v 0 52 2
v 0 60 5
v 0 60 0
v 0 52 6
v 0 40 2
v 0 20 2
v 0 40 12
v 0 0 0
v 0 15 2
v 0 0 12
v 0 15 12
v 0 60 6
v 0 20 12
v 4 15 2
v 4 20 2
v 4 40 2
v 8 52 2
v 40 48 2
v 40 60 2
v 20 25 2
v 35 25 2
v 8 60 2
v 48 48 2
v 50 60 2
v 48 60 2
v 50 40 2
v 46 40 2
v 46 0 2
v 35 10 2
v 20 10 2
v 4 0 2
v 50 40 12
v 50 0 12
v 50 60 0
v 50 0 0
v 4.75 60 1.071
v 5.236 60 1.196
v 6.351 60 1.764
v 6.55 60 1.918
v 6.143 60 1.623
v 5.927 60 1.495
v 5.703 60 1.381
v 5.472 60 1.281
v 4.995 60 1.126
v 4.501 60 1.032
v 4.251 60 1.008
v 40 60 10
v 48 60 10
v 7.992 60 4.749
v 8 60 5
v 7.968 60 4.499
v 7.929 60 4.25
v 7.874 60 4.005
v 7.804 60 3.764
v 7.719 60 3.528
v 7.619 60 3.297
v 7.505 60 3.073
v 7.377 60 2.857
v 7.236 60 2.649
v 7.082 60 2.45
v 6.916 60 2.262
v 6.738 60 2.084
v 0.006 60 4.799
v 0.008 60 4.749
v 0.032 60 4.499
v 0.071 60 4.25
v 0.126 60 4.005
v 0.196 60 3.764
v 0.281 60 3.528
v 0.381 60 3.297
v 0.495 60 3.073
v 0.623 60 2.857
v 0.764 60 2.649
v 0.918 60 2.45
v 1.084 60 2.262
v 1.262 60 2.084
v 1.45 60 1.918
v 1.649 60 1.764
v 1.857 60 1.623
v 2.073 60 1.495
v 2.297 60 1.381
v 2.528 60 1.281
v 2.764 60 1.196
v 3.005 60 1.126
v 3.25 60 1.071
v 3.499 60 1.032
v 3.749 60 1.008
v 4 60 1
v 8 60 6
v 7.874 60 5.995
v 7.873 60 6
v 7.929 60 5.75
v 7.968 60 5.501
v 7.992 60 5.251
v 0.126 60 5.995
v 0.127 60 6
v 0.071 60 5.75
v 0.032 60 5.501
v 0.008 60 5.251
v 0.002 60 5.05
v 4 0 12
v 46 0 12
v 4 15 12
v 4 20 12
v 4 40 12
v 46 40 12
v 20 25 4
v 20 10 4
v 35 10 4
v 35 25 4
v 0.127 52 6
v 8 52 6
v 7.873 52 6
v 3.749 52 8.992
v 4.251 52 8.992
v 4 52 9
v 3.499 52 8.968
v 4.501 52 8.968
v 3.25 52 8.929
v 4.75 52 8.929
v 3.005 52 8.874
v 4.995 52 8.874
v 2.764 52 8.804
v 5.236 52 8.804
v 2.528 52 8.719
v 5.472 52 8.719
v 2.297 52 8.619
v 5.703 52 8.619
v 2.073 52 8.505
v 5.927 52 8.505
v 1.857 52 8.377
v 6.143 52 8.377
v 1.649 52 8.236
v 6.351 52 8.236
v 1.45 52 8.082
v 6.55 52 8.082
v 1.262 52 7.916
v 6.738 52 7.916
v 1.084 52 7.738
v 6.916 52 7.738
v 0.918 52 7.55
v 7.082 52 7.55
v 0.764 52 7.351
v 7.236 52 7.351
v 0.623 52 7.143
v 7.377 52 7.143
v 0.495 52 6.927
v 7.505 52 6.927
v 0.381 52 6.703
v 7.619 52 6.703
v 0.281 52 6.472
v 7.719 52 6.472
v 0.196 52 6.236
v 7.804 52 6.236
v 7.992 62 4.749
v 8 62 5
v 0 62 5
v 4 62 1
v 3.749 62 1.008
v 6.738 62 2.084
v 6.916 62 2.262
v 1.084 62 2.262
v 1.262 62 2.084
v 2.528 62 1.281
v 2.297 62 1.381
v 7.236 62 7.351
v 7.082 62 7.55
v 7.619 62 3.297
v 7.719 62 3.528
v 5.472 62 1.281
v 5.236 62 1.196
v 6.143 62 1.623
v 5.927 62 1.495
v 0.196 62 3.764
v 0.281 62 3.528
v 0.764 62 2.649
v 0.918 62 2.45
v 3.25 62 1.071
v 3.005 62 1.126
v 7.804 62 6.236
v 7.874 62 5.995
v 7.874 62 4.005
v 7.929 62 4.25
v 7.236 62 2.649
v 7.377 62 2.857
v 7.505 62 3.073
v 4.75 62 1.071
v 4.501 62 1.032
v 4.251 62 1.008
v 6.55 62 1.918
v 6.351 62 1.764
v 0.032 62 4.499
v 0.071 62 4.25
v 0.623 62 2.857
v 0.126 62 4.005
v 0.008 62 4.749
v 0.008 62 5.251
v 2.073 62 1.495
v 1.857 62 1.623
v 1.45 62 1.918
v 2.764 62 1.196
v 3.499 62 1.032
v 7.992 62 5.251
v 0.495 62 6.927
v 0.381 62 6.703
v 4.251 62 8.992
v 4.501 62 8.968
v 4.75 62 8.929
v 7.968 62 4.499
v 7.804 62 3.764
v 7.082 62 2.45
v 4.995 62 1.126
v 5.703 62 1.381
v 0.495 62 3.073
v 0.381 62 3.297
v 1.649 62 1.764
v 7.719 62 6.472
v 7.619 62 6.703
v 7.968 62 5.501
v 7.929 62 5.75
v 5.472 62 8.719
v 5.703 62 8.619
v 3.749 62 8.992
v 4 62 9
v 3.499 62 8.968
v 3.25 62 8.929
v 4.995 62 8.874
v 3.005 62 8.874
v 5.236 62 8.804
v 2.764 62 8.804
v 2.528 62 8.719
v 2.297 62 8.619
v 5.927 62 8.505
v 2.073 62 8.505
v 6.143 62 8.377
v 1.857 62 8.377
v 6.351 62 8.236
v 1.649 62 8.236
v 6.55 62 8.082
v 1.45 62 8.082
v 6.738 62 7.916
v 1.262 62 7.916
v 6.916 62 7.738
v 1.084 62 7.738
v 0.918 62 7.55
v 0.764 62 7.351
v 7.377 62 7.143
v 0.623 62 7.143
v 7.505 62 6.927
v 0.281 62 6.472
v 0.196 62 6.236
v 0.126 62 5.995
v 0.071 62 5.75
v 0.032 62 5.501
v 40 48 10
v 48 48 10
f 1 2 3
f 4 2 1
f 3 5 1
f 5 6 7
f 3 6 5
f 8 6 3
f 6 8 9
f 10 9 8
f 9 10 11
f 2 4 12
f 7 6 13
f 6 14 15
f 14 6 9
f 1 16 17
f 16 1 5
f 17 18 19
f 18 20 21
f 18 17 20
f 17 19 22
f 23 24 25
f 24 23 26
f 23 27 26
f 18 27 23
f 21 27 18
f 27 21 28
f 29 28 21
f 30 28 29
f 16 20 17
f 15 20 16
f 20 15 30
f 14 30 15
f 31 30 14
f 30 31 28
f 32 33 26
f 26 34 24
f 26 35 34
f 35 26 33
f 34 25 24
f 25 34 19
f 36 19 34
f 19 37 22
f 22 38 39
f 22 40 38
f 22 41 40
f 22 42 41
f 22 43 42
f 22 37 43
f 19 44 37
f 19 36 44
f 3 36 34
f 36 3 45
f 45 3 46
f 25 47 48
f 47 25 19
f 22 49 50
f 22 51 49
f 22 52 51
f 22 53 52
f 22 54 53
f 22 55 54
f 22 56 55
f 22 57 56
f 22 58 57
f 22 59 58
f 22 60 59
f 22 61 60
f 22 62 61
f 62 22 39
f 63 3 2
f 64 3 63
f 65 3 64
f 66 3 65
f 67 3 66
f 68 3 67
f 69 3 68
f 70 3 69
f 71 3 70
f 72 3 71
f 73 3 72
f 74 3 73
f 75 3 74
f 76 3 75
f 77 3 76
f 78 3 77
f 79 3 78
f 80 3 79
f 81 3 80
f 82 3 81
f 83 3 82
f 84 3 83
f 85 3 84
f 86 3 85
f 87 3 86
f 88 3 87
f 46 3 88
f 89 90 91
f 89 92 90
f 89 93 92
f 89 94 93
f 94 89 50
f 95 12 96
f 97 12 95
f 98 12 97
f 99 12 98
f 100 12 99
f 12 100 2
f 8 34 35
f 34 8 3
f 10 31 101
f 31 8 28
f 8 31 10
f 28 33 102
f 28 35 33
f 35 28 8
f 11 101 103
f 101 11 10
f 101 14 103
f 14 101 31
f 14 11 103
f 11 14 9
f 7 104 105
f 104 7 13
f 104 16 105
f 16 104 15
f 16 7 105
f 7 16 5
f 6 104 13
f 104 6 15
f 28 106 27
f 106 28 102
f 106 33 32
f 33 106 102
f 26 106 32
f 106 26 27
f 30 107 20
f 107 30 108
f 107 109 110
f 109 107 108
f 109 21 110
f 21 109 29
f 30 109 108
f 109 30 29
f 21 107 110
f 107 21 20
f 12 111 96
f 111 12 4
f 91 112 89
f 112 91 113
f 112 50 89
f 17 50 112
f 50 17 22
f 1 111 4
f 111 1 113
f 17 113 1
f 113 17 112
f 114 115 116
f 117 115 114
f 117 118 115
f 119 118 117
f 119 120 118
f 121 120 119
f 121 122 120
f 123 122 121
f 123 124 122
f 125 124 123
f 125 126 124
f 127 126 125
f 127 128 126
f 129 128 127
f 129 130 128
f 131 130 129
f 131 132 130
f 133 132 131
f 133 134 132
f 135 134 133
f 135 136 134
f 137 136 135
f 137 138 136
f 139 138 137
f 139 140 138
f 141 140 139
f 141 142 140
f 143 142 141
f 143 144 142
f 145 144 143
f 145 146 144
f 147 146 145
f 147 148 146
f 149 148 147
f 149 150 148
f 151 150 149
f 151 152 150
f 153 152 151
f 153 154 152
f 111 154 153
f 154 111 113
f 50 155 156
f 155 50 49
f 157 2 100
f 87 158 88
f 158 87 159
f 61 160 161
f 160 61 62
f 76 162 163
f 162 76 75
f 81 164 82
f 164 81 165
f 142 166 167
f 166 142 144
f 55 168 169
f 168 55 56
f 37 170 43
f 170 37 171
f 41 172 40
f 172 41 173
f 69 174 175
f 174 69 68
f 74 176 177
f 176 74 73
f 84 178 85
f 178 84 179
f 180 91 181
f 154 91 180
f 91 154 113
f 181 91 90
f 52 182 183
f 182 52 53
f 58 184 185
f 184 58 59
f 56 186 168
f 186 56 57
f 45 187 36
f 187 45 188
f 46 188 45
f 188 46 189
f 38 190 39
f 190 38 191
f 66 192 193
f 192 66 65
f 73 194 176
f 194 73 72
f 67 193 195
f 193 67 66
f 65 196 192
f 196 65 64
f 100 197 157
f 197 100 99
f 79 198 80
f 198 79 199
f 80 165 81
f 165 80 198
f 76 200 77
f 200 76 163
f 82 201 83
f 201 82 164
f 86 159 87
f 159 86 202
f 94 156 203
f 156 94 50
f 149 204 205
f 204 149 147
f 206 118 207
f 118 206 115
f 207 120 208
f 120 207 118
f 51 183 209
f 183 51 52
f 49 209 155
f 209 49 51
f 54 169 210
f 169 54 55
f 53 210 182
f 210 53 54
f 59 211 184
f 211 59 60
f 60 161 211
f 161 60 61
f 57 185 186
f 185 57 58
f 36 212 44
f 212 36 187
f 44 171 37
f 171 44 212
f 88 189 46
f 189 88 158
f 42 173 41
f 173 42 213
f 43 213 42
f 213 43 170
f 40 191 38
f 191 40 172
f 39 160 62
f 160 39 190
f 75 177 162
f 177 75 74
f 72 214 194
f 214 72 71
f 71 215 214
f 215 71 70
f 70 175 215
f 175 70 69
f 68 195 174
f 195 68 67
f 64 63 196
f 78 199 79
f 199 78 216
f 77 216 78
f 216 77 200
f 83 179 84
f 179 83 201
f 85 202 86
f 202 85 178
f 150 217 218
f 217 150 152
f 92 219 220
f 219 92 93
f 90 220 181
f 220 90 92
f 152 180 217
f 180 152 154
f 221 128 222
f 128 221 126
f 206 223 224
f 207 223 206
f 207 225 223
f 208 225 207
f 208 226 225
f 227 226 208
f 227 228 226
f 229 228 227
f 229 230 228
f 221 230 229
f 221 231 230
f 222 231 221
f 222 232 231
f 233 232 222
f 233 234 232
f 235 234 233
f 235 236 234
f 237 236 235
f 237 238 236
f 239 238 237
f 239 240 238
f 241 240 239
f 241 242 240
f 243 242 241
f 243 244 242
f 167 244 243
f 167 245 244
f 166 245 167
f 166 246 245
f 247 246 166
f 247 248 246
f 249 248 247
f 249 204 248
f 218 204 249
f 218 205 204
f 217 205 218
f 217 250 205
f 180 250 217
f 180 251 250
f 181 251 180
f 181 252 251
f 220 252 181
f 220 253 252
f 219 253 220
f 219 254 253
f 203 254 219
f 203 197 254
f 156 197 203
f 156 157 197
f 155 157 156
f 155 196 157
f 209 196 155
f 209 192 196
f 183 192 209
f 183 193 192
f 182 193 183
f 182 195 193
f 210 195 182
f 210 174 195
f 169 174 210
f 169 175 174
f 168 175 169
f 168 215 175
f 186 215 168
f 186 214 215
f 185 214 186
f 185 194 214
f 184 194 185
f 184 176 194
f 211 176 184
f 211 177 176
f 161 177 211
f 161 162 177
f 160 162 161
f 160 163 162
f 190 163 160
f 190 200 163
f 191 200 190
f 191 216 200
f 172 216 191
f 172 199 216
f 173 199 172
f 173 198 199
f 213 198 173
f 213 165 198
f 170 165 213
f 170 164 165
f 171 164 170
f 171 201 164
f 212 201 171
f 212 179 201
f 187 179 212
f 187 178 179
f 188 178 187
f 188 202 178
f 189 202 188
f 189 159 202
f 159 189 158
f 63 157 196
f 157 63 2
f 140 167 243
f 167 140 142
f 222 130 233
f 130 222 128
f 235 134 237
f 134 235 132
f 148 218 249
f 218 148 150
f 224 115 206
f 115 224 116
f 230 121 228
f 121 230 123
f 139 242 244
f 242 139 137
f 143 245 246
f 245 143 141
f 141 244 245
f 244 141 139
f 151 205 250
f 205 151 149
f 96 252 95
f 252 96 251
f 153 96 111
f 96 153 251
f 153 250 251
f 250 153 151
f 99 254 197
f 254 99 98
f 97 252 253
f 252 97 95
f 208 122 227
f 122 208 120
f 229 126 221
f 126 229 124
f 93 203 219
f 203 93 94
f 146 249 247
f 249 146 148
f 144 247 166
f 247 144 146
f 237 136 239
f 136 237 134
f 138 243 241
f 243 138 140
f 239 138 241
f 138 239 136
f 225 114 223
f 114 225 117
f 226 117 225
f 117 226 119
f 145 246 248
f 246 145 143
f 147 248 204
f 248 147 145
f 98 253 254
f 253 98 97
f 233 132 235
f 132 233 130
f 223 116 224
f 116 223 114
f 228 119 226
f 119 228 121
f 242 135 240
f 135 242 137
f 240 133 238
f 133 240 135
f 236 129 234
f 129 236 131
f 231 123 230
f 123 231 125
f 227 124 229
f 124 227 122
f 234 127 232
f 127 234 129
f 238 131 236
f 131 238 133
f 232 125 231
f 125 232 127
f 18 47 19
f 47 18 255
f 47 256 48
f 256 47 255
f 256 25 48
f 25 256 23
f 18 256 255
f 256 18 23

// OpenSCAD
arduino();

/**
 * Плата Arduino Uno (ChipKIT Uno32)
 */
module arduino() {
  cube([50,60,2]);
  
  // аналоговые пины
  translate([0, 0, 2]) cube([4, 15, 10]);
  // питание
  translate([0, 20, 2]) cube([4, 20, 10]);
  // GPIO
  translate([50-4, 0, 2]) cube([4, 40, 10]);
    
  // чип
  translate([20, 10, 2]) cube([15, 15, 2]);
    
  // питание
  translate([0, 52, 2]) cube([8, 8, 4]);
  translate([4, 52, 5]) rotate([-90, 0, 0]) cylinder(r=4, h=10, $fn=100);
    
  // USB
  translate([40, 48, 2]) cube([8, 12, 8]);
}
